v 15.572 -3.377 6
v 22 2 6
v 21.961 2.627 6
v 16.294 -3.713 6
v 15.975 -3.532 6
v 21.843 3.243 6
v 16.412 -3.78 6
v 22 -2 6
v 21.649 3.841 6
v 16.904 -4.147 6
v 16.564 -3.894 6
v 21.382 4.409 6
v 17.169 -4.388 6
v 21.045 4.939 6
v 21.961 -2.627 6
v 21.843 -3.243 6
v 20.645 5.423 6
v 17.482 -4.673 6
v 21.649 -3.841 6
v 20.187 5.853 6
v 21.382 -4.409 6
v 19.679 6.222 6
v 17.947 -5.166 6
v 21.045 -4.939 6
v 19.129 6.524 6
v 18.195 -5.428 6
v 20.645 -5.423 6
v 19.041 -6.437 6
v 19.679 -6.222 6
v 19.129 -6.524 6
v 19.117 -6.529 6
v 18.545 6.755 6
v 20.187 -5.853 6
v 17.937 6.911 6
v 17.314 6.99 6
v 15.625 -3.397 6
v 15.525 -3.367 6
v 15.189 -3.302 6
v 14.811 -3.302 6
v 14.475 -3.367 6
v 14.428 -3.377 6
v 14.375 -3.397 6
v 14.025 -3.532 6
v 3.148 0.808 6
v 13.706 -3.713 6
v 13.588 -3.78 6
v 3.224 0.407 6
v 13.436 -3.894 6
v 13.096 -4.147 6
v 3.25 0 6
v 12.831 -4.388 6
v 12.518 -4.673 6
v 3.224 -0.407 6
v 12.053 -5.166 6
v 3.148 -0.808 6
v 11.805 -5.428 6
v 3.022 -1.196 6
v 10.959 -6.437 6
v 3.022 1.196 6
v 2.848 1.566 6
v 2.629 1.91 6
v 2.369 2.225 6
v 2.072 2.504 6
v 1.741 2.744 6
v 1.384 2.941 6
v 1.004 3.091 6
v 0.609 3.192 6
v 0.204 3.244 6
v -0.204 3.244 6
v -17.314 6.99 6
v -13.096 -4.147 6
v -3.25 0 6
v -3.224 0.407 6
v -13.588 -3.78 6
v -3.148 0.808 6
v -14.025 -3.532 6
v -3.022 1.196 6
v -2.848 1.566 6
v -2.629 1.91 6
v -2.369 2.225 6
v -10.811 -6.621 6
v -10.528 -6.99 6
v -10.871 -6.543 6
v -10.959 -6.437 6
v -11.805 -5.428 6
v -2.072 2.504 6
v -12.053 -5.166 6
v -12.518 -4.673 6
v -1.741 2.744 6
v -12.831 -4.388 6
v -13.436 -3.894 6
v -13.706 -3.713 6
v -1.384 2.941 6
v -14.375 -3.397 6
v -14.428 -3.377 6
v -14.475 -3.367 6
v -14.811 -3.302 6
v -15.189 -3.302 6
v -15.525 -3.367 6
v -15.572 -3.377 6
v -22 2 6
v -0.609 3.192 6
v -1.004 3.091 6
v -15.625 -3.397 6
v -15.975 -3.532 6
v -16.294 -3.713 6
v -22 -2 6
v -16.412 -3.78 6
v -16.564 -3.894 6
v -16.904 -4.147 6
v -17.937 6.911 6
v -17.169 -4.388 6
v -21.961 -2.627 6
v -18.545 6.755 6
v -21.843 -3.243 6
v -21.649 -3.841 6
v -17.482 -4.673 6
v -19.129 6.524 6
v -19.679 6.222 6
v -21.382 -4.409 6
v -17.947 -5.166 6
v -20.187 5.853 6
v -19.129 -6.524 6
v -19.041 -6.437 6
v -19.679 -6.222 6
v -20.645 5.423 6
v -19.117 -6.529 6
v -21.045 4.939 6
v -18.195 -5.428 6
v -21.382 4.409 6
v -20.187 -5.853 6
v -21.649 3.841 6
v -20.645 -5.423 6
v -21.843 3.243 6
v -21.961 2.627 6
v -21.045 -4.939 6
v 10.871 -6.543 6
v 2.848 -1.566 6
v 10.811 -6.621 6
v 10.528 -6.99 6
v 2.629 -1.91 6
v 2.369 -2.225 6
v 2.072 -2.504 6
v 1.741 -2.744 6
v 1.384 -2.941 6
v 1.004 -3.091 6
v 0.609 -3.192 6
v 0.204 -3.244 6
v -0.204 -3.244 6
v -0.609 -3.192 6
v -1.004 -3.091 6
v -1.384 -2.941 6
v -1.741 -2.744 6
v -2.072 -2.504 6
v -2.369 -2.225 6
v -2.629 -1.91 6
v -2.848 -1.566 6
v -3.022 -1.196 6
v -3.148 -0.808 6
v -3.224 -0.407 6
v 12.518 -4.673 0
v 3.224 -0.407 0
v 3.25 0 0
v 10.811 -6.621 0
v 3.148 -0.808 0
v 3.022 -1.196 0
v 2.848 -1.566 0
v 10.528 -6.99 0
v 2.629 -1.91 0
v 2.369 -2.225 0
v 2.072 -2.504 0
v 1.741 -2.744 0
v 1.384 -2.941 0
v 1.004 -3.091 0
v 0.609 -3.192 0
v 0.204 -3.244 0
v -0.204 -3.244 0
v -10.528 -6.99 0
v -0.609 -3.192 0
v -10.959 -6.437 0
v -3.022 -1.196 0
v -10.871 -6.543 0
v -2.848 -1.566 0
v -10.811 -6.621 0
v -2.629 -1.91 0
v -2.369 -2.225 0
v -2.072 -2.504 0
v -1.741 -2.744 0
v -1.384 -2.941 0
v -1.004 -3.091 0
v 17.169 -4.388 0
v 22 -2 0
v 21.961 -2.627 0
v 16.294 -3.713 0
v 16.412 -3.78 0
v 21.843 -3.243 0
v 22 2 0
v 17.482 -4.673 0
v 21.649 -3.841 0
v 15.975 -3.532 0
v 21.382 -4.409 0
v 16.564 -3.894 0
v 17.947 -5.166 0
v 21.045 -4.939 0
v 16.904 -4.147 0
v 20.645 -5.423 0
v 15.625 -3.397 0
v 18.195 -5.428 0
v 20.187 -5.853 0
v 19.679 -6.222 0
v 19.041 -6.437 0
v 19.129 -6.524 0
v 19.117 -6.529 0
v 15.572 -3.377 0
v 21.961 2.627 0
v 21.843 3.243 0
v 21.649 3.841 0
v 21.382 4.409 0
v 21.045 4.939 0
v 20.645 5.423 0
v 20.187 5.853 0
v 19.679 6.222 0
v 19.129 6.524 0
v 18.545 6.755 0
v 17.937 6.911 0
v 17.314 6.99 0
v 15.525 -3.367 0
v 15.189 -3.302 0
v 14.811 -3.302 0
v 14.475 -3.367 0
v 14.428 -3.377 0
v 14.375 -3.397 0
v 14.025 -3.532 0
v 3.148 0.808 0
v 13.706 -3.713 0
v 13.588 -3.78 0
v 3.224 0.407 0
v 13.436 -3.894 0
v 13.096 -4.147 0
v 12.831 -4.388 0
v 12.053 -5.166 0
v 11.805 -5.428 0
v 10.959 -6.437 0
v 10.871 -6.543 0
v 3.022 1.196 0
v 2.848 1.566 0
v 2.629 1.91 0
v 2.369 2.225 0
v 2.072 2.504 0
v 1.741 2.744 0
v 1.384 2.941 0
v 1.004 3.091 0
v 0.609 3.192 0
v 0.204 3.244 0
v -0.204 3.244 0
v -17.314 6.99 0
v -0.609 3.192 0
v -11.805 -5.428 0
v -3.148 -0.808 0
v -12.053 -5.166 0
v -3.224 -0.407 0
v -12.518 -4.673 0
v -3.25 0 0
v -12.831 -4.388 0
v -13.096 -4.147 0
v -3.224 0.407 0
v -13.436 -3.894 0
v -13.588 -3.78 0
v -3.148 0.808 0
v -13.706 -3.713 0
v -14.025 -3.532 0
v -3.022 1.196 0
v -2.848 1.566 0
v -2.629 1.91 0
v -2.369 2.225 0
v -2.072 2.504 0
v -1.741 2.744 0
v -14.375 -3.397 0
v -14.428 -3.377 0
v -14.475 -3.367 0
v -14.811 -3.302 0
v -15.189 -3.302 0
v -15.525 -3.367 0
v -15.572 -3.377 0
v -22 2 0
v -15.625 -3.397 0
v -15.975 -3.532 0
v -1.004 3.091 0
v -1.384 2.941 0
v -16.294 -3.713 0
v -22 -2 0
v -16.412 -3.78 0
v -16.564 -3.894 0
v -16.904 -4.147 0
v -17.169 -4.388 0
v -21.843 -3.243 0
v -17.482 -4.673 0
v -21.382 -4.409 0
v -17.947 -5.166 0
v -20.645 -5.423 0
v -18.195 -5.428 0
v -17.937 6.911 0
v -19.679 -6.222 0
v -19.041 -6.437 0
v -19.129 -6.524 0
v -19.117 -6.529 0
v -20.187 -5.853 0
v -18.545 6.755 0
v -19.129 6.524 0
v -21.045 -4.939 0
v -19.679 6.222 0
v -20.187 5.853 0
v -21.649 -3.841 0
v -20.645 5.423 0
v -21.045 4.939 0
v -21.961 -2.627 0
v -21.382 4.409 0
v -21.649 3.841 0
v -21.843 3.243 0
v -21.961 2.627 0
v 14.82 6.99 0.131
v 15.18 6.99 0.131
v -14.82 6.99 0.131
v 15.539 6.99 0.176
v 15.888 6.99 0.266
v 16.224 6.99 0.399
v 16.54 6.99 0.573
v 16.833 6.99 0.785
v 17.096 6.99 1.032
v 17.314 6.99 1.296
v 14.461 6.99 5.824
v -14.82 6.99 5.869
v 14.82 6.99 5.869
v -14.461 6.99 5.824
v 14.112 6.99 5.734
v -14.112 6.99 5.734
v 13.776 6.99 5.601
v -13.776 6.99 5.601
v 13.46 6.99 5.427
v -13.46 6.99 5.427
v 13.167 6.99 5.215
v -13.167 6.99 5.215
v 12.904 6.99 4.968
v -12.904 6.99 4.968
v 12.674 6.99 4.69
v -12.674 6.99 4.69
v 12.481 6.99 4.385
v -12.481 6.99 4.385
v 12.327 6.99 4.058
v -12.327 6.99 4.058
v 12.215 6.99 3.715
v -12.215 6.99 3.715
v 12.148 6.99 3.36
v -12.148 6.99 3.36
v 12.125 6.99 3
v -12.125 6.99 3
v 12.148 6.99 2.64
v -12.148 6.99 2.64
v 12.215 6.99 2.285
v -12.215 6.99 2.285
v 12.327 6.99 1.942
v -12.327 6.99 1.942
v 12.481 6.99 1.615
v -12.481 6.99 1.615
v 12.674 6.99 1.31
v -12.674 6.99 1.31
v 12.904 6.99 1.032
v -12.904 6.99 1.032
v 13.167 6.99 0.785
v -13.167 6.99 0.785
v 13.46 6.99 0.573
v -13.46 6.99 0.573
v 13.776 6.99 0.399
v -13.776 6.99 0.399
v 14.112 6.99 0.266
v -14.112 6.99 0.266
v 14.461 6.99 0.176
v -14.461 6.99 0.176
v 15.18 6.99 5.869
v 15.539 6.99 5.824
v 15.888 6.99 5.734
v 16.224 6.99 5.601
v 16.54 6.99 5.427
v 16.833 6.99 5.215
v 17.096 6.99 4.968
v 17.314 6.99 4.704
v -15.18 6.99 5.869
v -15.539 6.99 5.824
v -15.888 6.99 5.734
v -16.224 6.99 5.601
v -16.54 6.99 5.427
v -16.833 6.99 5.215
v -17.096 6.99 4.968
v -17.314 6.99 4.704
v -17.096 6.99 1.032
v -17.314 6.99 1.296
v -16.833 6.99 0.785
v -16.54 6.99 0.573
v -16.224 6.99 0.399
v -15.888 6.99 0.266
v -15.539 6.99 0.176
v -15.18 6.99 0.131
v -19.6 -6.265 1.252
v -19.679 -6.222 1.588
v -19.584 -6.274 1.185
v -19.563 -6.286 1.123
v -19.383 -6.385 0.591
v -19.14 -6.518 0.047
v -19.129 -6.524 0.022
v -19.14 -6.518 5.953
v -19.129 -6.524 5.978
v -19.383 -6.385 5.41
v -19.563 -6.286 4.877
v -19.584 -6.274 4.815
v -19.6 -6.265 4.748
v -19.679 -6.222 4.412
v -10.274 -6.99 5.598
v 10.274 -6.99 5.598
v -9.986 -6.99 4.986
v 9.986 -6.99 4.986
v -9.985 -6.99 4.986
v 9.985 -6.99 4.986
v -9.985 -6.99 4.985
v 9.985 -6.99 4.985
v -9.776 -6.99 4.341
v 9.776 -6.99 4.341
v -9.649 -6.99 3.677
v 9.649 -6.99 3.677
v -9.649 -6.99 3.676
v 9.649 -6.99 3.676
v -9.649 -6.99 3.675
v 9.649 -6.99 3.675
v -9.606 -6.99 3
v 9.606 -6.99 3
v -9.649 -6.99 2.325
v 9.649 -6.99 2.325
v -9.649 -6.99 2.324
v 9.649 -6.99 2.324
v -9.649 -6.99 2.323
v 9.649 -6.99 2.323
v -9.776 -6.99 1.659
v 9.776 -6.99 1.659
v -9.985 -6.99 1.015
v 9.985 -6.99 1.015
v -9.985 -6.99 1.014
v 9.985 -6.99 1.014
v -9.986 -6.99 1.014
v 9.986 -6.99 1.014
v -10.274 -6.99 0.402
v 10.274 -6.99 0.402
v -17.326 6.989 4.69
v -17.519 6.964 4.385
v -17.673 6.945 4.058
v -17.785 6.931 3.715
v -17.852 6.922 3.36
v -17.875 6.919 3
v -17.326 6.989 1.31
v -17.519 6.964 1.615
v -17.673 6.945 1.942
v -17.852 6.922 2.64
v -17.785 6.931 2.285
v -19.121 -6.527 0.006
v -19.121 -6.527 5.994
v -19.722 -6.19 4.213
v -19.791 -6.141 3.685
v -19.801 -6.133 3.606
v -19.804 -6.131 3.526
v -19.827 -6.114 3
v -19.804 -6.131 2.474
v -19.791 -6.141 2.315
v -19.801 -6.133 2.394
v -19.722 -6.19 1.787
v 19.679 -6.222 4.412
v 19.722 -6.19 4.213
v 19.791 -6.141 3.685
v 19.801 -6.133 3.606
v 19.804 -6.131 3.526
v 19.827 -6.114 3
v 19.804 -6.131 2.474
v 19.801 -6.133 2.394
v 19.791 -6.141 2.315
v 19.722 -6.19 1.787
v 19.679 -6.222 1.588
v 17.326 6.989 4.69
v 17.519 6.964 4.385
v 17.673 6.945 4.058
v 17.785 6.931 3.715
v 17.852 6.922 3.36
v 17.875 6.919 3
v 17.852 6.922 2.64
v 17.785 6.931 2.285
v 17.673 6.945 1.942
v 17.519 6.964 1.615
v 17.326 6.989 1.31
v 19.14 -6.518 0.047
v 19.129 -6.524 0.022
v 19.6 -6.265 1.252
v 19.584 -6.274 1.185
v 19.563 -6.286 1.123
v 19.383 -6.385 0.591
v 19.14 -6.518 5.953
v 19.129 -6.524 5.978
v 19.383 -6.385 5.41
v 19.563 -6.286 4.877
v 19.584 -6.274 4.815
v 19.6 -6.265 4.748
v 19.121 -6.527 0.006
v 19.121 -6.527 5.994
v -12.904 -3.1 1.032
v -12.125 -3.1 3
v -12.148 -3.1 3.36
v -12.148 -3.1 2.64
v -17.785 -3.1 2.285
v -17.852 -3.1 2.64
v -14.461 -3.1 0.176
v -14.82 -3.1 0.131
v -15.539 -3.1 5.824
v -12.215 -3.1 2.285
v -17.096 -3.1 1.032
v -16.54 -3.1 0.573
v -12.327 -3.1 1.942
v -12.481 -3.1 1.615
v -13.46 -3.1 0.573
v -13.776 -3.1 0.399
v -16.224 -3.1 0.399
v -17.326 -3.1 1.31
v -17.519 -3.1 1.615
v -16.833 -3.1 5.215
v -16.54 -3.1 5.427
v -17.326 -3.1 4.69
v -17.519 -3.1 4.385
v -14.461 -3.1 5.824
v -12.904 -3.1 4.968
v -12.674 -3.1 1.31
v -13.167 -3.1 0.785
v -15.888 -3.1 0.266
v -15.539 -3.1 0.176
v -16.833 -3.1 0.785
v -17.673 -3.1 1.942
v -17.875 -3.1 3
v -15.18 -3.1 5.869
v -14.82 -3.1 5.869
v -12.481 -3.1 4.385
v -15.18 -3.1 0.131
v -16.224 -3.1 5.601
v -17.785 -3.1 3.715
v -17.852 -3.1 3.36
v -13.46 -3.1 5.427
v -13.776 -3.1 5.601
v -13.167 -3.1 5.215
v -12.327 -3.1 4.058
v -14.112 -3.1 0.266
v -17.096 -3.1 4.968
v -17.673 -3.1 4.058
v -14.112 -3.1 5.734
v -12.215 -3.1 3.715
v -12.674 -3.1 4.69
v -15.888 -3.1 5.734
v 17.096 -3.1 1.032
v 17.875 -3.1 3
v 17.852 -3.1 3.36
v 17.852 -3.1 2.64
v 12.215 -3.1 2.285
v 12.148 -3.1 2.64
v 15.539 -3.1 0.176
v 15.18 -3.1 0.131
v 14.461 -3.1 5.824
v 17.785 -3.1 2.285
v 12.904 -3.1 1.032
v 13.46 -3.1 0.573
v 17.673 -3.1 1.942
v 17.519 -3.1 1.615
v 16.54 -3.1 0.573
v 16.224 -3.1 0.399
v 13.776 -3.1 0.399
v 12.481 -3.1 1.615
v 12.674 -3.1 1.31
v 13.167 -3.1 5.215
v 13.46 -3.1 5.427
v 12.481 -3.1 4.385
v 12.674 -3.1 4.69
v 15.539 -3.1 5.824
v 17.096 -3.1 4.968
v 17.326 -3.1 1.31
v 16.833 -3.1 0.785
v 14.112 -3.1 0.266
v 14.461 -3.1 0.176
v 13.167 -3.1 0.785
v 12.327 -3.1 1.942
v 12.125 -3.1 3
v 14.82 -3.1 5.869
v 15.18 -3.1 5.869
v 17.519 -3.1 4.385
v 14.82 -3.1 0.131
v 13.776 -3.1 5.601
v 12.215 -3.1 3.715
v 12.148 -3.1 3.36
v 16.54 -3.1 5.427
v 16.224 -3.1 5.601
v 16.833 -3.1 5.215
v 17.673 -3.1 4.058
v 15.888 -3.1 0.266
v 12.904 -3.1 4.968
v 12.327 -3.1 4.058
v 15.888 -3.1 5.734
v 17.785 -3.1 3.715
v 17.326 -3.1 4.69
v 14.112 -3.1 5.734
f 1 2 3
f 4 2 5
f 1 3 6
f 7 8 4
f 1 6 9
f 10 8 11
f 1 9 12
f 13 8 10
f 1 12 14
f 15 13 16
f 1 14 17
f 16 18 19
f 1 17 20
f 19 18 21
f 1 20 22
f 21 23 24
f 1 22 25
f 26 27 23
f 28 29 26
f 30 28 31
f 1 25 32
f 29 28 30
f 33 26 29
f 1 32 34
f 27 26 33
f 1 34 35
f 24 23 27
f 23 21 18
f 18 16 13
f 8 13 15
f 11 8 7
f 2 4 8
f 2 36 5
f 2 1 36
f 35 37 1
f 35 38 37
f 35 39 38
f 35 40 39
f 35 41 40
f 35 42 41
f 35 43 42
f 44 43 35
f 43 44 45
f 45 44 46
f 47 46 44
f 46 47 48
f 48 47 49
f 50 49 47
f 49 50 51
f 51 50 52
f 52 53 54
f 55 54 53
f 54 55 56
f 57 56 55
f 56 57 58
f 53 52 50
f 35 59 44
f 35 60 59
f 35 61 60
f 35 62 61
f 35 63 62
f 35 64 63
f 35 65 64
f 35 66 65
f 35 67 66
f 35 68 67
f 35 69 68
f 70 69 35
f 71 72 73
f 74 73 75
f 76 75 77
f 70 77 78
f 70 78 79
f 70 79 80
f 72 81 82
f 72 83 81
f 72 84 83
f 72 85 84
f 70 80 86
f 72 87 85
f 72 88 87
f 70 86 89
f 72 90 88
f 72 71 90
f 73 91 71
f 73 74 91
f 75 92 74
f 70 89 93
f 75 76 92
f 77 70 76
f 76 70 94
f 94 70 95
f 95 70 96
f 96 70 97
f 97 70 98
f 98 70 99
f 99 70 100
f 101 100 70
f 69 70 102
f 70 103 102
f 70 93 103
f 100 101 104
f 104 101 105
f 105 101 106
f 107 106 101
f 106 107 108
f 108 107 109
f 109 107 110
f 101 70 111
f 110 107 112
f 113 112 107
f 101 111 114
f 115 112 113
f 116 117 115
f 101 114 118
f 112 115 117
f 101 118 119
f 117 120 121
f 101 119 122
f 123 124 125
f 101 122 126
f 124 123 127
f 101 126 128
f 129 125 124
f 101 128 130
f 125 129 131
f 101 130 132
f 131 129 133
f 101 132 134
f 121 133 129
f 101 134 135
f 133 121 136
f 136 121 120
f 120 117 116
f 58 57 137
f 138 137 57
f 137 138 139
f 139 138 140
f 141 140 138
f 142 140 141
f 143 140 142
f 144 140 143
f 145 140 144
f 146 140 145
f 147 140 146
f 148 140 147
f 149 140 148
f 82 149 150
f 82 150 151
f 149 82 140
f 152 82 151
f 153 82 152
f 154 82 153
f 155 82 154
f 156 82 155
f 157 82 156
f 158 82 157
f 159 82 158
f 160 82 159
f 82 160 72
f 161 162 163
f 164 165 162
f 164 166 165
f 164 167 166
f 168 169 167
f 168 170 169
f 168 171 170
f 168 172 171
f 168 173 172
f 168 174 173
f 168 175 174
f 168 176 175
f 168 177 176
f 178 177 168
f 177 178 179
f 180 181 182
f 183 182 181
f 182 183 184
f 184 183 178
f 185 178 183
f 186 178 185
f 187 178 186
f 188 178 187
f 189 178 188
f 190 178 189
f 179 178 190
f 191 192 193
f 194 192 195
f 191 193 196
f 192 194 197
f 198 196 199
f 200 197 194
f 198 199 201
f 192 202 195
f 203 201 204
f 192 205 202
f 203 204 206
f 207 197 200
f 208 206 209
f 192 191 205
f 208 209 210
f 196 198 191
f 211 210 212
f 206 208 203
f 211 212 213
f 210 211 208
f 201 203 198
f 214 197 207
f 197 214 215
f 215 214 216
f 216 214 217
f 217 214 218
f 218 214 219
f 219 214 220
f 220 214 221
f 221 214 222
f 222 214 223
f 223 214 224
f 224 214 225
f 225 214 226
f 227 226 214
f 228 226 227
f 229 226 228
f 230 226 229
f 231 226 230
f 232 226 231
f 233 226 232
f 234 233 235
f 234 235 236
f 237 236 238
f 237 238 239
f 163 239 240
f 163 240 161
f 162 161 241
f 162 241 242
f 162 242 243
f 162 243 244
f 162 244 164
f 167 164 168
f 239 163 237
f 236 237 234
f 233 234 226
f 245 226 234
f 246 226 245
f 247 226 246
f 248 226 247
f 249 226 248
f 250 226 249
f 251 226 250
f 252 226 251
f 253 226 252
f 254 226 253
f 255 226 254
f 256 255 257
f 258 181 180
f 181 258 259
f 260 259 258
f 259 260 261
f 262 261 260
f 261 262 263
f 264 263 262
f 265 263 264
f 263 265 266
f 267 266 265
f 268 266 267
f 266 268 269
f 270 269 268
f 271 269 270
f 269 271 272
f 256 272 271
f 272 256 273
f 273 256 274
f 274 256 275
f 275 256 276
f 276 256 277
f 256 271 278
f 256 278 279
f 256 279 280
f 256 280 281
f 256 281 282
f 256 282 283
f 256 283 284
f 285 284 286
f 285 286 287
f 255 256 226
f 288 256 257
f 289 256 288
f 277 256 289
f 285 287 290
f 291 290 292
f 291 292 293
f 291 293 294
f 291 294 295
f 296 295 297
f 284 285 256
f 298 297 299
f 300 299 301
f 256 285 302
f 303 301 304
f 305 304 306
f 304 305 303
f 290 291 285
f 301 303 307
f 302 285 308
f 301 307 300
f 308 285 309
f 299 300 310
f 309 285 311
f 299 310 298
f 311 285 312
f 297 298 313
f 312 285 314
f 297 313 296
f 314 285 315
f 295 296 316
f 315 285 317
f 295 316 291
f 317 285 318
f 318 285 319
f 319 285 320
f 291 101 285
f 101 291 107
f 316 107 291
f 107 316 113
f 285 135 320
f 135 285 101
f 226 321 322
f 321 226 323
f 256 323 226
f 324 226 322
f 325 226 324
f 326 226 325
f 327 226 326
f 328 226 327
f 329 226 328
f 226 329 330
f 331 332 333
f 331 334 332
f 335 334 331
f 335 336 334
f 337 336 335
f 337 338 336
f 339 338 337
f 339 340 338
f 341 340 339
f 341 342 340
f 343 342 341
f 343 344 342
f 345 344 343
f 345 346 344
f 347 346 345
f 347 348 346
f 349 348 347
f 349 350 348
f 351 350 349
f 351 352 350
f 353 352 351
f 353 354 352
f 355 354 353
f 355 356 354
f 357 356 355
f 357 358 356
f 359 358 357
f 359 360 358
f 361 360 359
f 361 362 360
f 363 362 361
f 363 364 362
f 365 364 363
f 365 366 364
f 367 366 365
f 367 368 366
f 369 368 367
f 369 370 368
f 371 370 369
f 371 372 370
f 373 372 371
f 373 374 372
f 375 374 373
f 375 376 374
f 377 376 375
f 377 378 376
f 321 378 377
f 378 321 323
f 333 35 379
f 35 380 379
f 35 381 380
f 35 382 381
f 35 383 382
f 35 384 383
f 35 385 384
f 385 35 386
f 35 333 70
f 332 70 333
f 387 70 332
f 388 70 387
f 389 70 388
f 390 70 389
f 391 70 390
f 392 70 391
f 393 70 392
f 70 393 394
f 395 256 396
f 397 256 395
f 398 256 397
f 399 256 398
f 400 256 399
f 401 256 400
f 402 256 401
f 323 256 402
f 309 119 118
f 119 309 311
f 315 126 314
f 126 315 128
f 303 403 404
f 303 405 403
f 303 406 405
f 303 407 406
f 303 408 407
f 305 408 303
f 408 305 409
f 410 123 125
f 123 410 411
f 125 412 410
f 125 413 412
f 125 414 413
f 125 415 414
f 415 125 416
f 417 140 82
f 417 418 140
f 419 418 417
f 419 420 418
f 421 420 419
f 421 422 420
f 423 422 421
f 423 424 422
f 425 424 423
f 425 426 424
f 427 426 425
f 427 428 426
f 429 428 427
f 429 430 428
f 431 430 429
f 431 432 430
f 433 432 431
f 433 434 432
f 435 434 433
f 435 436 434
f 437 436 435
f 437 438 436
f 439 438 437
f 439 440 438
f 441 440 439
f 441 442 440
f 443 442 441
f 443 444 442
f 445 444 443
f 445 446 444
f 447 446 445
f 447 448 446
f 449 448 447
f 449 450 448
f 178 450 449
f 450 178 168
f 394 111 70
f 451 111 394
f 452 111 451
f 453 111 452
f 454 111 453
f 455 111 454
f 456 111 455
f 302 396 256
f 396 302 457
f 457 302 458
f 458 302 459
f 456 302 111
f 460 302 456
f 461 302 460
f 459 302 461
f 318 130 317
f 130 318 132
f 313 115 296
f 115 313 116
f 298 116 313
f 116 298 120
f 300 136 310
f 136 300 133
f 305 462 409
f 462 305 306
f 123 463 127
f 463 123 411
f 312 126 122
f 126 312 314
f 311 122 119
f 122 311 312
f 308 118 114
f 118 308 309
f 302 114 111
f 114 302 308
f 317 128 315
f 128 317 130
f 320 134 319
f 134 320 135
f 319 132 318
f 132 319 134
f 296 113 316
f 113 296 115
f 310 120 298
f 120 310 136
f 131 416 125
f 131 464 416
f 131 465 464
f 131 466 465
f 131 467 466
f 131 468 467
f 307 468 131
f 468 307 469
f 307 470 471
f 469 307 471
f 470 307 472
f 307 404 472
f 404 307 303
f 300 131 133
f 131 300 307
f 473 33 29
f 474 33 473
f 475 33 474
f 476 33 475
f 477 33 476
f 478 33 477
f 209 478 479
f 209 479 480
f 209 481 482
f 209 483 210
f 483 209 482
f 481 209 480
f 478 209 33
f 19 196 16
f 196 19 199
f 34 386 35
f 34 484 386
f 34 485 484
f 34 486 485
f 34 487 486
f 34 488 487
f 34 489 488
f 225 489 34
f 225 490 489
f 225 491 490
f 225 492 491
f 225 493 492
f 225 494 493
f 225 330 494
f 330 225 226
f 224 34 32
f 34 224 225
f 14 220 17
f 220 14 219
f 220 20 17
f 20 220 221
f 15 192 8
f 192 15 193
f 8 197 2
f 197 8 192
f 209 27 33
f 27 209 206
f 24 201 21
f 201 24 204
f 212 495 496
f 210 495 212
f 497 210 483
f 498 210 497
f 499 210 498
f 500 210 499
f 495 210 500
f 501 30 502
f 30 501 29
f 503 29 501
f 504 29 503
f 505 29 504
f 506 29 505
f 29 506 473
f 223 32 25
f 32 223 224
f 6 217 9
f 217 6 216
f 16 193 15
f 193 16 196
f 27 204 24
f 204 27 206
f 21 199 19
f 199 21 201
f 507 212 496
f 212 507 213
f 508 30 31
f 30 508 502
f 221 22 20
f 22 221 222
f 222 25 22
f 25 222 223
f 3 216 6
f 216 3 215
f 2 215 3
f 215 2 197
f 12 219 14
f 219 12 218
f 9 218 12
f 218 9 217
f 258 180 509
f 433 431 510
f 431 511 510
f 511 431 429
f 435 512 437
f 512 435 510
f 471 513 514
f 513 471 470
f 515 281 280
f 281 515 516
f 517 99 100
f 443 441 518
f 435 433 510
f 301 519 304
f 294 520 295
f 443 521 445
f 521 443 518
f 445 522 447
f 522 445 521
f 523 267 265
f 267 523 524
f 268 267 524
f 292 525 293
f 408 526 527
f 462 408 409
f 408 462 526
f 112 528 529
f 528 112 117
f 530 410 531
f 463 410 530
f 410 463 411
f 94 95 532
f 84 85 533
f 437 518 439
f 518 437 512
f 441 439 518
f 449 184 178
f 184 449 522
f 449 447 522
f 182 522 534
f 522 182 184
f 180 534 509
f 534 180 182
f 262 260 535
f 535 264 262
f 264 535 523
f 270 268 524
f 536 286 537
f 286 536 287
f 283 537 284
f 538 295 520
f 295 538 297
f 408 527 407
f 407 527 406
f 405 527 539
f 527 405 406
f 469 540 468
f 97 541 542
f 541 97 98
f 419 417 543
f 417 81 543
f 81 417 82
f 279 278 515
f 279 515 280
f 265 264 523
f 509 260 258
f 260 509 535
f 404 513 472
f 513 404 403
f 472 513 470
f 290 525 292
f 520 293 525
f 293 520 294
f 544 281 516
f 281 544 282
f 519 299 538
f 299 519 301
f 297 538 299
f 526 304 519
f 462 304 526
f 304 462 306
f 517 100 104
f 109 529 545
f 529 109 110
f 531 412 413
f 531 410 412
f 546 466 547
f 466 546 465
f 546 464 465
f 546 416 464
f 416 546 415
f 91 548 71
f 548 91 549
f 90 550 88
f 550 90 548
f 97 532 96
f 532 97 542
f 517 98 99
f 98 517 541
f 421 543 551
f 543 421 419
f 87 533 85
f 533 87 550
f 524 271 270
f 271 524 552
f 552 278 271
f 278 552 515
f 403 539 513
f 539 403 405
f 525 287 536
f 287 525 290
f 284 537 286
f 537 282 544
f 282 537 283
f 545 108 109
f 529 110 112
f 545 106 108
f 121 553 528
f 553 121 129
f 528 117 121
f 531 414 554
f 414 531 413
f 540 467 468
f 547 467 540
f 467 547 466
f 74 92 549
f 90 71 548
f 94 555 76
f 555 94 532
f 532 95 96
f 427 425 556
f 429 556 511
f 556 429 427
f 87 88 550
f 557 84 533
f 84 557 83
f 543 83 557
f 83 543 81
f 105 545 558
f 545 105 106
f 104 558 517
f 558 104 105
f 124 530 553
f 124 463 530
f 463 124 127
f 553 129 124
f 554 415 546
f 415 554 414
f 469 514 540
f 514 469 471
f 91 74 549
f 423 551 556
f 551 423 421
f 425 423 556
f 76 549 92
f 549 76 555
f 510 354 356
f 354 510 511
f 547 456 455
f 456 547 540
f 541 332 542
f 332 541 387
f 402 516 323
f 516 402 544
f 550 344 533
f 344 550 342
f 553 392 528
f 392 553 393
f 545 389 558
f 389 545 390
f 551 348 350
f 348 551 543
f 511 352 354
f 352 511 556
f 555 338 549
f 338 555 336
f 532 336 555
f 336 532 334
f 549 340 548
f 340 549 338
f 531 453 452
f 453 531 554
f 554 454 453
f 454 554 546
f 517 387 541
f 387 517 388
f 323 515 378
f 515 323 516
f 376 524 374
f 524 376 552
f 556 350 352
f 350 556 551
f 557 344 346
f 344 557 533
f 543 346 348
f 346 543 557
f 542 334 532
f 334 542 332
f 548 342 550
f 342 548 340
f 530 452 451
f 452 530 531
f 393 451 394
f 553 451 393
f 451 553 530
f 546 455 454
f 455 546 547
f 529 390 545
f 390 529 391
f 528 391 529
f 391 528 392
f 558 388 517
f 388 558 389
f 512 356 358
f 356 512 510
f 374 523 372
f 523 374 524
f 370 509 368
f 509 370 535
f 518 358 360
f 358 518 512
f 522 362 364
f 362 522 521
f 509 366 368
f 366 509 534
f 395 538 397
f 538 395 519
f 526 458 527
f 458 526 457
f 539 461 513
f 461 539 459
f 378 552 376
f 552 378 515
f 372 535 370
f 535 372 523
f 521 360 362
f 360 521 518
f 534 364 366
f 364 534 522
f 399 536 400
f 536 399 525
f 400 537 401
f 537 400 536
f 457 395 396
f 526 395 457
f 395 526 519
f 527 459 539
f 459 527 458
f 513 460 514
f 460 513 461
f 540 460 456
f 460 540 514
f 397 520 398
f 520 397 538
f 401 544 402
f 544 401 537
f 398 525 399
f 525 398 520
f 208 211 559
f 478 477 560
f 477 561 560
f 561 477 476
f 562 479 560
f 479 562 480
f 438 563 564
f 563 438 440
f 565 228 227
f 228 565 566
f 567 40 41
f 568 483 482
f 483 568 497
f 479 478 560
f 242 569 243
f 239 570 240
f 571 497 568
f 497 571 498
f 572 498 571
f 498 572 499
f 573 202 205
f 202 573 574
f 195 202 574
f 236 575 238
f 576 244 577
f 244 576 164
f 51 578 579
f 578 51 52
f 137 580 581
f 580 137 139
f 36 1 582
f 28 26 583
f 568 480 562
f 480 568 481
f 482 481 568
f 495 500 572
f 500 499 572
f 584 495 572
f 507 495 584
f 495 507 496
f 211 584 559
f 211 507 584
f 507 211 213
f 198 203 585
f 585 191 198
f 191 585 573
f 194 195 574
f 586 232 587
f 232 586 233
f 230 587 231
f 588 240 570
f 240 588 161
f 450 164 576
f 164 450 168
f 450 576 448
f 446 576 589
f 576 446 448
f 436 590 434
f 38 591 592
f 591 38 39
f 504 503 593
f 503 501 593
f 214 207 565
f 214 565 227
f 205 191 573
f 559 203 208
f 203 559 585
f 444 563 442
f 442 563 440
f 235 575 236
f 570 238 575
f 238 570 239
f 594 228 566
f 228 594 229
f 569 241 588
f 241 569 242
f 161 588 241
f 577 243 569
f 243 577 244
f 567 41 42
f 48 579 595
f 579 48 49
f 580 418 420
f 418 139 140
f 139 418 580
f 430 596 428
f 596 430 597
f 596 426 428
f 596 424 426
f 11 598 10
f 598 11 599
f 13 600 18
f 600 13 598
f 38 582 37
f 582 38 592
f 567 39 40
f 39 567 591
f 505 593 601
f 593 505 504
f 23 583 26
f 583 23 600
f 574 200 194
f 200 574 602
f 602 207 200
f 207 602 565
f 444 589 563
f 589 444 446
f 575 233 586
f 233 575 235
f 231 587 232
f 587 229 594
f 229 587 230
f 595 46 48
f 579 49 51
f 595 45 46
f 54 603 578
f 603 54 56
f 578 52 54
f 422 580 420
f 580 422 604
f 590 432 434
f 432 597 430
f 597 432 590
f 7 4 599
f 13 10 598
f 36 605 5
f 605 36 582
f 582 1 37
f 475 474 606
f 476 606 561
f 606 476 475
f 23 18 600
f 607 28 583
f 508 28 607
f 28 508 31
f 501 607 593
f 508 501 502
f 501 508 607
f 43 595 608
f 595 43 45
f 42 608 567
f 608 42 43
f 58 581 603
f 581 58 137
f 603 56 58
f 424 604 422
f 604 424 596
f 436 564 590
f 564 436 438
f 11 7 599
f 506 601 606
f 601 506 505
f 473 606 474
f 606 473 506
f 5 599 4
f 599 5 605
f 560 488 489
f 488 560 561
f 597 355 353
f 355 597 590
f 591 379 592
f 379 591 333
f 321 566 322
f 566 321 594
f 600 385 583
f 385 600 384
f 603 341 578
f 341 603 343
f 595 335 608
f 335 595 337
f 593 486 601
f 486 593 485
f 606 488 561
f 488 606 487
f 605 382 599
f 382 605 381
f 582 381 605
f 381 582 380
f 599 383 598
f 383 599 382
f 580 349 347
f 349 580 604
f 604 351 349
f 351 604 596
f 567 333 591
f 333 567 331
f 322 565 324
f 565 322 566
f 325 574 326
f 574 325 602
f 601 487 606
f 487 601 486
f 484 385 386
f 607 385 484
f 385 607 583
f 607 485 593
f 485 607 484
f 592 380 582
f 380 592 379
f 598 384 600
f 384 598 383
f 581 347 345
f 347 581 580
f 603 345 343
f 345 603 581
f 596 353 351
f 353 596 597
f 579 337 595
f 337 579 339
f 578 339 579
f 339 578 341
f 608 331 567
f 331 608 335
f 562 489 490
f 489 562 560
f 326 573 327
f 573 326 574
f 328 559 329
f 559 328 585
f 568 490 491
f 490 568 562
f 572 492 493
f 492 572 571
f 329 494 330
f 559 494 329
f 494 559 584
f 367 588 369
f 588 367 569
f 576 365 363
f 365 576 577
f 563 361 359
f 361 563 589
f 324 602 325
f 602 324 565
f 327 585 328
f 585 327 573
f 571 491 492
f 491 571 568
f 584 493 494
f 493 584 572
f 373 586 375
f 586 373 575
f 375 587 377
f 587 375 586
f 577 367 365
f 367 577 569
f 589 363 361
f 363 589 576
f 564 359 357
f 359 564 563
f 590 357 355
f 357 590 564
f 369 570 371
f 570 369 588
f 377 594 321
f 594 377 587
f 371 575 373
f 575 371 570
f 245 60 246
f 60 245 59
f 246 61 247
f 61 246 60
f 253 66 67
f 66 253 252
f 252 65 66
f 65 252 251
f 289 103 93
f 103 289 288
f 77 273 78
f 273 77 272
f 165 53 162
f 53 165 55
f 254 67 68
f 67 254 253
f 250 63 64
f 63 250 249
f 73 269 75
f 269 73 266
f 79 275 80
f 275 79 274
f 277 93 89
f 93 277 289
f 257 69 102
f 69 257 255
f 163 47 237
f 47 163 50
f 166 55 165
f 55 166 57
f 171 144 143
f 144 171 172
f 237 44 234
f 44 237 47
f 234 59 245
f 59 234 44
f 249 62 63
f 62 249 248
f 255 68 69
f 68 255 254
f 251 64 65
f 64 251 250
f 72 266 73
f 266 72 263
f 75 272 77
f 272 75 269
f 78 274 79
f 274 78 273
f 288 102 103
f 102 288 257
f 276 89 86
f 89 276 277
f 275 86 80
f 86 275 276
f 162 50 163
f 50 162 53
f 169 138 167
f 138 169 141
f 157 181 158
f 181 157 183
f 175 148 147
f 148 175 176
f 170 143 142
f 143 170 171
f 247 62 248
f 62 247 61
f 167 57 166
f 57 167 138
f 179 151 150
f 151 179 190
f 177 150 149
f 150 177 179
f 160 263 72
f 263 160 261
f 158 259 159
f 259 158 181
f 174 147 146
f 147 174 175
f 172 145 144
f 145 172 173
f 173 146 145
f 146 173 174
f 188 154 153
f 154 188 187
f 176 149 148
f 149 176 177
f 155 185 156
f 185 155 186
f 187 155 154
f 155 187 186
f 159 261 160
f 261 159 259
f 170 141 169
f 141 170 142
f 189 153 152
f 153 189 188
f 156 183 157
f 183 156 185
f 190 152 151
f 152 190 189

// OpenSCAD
$fn = 50;


difference() {
	union() {
		cylinder(h = 6, r = 7.0000000000);
		translate(v = [-7.5000000000, 0.0000000000, 0]) {
			hull() {
				translate(v = [-9.5000000000, 2.0000000000, 0]) {
					cylinder(h = 6, r = 5);
				}
				translate(v = [9.5000000000, 2.0000000000, 0]) {
					cylinder(h = 6, r = 5);
				}
				translate(v = [-9.5000000000, -2.0000000000, 0]) {
					cylinder(h = 6, r = 5);
				}
				translate(v = [9.5000000000, -2.0000000000, 0]) {
					cylinder(h = 6, r = 5);
				}
			}
		}
		translate(v = [7.5000000000, 0.0000000000, 0]) {
			hull() {
				translate(v = [-9.5000000000, 2.0000000000, 0]) {
					cylinder(h = 6, r = 5);
				}
				translate(v = [9.5000000000, 2.0000000000, 0]) {
					cylinder(h = 6, r = 5);
				}
				translate(v = [-9.5000000000, -2.0000000000, 0]) {
					cylinder(h = 6, r = 5);
				}
				translate(v = [9.5000000000, -2.0000000000, 0]) {
					cylinder(h = 6, r = 5);
				}
			}
		}
	}
	union() {
		translate(v = [-15.0000000000, -7.0000000000, 3.0000000000]) {
			rotate(a = [90, 0, 0]) {
				difference() {
					union() {
						#translate(v = [0, 0, -14.0000000000]) {
							cylinder(h = 14, r = 2.6000000000);
						}
						#translate(v = [0, 0, -3.9000000000]) {
							cylinder(h = 3.9000000000, r1 = 2.8750000000, r2 = 5.4000000000);
						}
						#translate(v = [0, 0, -14.0000000000]) {
							cylinder(h = 14, r = 2.8750000000);
						}
						#translate(v = [0, 0, -14.0000000000]) {
							cylinder(h = 14, r = 2.6000000000);
						}
					}
					union();
				}
			}
		}
		translate(v = [15.0000000000, -7.0000000000, 3.0000000000]) {
			rotate(a = [90, 0, 0]) {
				difference() {
					union() {
						#translate(v = [0, 0, -14.0000000000]) {
							cylinder(h = 14, r = 2.6000000000);
						}
						#translate(v = [0, 0, -3.9000000000]) {
							cylinder(h = 3.9000000000, r1 = 2.8750000000, r2 = 5.4000000000);
						}
						#translate(v = [0, 0, -14.0000000000]) {
							cylinder(h = 14, r = 2.8750000000);
						}
						#translate(v = [0, 0, -14.0000000000]) {
							cylinder(h = 14, r = 2.6000000000);
						}
					}
					union();
				}
			}
		}
		translate(v = [0, 0, -100]) {
			cylinder(h = 200, r = 3.2500000000);
		}
		translate(v = [0, 0, -100]) {
			cylinder(h = 200, r = 1.8000000000);
		}
	}
}
